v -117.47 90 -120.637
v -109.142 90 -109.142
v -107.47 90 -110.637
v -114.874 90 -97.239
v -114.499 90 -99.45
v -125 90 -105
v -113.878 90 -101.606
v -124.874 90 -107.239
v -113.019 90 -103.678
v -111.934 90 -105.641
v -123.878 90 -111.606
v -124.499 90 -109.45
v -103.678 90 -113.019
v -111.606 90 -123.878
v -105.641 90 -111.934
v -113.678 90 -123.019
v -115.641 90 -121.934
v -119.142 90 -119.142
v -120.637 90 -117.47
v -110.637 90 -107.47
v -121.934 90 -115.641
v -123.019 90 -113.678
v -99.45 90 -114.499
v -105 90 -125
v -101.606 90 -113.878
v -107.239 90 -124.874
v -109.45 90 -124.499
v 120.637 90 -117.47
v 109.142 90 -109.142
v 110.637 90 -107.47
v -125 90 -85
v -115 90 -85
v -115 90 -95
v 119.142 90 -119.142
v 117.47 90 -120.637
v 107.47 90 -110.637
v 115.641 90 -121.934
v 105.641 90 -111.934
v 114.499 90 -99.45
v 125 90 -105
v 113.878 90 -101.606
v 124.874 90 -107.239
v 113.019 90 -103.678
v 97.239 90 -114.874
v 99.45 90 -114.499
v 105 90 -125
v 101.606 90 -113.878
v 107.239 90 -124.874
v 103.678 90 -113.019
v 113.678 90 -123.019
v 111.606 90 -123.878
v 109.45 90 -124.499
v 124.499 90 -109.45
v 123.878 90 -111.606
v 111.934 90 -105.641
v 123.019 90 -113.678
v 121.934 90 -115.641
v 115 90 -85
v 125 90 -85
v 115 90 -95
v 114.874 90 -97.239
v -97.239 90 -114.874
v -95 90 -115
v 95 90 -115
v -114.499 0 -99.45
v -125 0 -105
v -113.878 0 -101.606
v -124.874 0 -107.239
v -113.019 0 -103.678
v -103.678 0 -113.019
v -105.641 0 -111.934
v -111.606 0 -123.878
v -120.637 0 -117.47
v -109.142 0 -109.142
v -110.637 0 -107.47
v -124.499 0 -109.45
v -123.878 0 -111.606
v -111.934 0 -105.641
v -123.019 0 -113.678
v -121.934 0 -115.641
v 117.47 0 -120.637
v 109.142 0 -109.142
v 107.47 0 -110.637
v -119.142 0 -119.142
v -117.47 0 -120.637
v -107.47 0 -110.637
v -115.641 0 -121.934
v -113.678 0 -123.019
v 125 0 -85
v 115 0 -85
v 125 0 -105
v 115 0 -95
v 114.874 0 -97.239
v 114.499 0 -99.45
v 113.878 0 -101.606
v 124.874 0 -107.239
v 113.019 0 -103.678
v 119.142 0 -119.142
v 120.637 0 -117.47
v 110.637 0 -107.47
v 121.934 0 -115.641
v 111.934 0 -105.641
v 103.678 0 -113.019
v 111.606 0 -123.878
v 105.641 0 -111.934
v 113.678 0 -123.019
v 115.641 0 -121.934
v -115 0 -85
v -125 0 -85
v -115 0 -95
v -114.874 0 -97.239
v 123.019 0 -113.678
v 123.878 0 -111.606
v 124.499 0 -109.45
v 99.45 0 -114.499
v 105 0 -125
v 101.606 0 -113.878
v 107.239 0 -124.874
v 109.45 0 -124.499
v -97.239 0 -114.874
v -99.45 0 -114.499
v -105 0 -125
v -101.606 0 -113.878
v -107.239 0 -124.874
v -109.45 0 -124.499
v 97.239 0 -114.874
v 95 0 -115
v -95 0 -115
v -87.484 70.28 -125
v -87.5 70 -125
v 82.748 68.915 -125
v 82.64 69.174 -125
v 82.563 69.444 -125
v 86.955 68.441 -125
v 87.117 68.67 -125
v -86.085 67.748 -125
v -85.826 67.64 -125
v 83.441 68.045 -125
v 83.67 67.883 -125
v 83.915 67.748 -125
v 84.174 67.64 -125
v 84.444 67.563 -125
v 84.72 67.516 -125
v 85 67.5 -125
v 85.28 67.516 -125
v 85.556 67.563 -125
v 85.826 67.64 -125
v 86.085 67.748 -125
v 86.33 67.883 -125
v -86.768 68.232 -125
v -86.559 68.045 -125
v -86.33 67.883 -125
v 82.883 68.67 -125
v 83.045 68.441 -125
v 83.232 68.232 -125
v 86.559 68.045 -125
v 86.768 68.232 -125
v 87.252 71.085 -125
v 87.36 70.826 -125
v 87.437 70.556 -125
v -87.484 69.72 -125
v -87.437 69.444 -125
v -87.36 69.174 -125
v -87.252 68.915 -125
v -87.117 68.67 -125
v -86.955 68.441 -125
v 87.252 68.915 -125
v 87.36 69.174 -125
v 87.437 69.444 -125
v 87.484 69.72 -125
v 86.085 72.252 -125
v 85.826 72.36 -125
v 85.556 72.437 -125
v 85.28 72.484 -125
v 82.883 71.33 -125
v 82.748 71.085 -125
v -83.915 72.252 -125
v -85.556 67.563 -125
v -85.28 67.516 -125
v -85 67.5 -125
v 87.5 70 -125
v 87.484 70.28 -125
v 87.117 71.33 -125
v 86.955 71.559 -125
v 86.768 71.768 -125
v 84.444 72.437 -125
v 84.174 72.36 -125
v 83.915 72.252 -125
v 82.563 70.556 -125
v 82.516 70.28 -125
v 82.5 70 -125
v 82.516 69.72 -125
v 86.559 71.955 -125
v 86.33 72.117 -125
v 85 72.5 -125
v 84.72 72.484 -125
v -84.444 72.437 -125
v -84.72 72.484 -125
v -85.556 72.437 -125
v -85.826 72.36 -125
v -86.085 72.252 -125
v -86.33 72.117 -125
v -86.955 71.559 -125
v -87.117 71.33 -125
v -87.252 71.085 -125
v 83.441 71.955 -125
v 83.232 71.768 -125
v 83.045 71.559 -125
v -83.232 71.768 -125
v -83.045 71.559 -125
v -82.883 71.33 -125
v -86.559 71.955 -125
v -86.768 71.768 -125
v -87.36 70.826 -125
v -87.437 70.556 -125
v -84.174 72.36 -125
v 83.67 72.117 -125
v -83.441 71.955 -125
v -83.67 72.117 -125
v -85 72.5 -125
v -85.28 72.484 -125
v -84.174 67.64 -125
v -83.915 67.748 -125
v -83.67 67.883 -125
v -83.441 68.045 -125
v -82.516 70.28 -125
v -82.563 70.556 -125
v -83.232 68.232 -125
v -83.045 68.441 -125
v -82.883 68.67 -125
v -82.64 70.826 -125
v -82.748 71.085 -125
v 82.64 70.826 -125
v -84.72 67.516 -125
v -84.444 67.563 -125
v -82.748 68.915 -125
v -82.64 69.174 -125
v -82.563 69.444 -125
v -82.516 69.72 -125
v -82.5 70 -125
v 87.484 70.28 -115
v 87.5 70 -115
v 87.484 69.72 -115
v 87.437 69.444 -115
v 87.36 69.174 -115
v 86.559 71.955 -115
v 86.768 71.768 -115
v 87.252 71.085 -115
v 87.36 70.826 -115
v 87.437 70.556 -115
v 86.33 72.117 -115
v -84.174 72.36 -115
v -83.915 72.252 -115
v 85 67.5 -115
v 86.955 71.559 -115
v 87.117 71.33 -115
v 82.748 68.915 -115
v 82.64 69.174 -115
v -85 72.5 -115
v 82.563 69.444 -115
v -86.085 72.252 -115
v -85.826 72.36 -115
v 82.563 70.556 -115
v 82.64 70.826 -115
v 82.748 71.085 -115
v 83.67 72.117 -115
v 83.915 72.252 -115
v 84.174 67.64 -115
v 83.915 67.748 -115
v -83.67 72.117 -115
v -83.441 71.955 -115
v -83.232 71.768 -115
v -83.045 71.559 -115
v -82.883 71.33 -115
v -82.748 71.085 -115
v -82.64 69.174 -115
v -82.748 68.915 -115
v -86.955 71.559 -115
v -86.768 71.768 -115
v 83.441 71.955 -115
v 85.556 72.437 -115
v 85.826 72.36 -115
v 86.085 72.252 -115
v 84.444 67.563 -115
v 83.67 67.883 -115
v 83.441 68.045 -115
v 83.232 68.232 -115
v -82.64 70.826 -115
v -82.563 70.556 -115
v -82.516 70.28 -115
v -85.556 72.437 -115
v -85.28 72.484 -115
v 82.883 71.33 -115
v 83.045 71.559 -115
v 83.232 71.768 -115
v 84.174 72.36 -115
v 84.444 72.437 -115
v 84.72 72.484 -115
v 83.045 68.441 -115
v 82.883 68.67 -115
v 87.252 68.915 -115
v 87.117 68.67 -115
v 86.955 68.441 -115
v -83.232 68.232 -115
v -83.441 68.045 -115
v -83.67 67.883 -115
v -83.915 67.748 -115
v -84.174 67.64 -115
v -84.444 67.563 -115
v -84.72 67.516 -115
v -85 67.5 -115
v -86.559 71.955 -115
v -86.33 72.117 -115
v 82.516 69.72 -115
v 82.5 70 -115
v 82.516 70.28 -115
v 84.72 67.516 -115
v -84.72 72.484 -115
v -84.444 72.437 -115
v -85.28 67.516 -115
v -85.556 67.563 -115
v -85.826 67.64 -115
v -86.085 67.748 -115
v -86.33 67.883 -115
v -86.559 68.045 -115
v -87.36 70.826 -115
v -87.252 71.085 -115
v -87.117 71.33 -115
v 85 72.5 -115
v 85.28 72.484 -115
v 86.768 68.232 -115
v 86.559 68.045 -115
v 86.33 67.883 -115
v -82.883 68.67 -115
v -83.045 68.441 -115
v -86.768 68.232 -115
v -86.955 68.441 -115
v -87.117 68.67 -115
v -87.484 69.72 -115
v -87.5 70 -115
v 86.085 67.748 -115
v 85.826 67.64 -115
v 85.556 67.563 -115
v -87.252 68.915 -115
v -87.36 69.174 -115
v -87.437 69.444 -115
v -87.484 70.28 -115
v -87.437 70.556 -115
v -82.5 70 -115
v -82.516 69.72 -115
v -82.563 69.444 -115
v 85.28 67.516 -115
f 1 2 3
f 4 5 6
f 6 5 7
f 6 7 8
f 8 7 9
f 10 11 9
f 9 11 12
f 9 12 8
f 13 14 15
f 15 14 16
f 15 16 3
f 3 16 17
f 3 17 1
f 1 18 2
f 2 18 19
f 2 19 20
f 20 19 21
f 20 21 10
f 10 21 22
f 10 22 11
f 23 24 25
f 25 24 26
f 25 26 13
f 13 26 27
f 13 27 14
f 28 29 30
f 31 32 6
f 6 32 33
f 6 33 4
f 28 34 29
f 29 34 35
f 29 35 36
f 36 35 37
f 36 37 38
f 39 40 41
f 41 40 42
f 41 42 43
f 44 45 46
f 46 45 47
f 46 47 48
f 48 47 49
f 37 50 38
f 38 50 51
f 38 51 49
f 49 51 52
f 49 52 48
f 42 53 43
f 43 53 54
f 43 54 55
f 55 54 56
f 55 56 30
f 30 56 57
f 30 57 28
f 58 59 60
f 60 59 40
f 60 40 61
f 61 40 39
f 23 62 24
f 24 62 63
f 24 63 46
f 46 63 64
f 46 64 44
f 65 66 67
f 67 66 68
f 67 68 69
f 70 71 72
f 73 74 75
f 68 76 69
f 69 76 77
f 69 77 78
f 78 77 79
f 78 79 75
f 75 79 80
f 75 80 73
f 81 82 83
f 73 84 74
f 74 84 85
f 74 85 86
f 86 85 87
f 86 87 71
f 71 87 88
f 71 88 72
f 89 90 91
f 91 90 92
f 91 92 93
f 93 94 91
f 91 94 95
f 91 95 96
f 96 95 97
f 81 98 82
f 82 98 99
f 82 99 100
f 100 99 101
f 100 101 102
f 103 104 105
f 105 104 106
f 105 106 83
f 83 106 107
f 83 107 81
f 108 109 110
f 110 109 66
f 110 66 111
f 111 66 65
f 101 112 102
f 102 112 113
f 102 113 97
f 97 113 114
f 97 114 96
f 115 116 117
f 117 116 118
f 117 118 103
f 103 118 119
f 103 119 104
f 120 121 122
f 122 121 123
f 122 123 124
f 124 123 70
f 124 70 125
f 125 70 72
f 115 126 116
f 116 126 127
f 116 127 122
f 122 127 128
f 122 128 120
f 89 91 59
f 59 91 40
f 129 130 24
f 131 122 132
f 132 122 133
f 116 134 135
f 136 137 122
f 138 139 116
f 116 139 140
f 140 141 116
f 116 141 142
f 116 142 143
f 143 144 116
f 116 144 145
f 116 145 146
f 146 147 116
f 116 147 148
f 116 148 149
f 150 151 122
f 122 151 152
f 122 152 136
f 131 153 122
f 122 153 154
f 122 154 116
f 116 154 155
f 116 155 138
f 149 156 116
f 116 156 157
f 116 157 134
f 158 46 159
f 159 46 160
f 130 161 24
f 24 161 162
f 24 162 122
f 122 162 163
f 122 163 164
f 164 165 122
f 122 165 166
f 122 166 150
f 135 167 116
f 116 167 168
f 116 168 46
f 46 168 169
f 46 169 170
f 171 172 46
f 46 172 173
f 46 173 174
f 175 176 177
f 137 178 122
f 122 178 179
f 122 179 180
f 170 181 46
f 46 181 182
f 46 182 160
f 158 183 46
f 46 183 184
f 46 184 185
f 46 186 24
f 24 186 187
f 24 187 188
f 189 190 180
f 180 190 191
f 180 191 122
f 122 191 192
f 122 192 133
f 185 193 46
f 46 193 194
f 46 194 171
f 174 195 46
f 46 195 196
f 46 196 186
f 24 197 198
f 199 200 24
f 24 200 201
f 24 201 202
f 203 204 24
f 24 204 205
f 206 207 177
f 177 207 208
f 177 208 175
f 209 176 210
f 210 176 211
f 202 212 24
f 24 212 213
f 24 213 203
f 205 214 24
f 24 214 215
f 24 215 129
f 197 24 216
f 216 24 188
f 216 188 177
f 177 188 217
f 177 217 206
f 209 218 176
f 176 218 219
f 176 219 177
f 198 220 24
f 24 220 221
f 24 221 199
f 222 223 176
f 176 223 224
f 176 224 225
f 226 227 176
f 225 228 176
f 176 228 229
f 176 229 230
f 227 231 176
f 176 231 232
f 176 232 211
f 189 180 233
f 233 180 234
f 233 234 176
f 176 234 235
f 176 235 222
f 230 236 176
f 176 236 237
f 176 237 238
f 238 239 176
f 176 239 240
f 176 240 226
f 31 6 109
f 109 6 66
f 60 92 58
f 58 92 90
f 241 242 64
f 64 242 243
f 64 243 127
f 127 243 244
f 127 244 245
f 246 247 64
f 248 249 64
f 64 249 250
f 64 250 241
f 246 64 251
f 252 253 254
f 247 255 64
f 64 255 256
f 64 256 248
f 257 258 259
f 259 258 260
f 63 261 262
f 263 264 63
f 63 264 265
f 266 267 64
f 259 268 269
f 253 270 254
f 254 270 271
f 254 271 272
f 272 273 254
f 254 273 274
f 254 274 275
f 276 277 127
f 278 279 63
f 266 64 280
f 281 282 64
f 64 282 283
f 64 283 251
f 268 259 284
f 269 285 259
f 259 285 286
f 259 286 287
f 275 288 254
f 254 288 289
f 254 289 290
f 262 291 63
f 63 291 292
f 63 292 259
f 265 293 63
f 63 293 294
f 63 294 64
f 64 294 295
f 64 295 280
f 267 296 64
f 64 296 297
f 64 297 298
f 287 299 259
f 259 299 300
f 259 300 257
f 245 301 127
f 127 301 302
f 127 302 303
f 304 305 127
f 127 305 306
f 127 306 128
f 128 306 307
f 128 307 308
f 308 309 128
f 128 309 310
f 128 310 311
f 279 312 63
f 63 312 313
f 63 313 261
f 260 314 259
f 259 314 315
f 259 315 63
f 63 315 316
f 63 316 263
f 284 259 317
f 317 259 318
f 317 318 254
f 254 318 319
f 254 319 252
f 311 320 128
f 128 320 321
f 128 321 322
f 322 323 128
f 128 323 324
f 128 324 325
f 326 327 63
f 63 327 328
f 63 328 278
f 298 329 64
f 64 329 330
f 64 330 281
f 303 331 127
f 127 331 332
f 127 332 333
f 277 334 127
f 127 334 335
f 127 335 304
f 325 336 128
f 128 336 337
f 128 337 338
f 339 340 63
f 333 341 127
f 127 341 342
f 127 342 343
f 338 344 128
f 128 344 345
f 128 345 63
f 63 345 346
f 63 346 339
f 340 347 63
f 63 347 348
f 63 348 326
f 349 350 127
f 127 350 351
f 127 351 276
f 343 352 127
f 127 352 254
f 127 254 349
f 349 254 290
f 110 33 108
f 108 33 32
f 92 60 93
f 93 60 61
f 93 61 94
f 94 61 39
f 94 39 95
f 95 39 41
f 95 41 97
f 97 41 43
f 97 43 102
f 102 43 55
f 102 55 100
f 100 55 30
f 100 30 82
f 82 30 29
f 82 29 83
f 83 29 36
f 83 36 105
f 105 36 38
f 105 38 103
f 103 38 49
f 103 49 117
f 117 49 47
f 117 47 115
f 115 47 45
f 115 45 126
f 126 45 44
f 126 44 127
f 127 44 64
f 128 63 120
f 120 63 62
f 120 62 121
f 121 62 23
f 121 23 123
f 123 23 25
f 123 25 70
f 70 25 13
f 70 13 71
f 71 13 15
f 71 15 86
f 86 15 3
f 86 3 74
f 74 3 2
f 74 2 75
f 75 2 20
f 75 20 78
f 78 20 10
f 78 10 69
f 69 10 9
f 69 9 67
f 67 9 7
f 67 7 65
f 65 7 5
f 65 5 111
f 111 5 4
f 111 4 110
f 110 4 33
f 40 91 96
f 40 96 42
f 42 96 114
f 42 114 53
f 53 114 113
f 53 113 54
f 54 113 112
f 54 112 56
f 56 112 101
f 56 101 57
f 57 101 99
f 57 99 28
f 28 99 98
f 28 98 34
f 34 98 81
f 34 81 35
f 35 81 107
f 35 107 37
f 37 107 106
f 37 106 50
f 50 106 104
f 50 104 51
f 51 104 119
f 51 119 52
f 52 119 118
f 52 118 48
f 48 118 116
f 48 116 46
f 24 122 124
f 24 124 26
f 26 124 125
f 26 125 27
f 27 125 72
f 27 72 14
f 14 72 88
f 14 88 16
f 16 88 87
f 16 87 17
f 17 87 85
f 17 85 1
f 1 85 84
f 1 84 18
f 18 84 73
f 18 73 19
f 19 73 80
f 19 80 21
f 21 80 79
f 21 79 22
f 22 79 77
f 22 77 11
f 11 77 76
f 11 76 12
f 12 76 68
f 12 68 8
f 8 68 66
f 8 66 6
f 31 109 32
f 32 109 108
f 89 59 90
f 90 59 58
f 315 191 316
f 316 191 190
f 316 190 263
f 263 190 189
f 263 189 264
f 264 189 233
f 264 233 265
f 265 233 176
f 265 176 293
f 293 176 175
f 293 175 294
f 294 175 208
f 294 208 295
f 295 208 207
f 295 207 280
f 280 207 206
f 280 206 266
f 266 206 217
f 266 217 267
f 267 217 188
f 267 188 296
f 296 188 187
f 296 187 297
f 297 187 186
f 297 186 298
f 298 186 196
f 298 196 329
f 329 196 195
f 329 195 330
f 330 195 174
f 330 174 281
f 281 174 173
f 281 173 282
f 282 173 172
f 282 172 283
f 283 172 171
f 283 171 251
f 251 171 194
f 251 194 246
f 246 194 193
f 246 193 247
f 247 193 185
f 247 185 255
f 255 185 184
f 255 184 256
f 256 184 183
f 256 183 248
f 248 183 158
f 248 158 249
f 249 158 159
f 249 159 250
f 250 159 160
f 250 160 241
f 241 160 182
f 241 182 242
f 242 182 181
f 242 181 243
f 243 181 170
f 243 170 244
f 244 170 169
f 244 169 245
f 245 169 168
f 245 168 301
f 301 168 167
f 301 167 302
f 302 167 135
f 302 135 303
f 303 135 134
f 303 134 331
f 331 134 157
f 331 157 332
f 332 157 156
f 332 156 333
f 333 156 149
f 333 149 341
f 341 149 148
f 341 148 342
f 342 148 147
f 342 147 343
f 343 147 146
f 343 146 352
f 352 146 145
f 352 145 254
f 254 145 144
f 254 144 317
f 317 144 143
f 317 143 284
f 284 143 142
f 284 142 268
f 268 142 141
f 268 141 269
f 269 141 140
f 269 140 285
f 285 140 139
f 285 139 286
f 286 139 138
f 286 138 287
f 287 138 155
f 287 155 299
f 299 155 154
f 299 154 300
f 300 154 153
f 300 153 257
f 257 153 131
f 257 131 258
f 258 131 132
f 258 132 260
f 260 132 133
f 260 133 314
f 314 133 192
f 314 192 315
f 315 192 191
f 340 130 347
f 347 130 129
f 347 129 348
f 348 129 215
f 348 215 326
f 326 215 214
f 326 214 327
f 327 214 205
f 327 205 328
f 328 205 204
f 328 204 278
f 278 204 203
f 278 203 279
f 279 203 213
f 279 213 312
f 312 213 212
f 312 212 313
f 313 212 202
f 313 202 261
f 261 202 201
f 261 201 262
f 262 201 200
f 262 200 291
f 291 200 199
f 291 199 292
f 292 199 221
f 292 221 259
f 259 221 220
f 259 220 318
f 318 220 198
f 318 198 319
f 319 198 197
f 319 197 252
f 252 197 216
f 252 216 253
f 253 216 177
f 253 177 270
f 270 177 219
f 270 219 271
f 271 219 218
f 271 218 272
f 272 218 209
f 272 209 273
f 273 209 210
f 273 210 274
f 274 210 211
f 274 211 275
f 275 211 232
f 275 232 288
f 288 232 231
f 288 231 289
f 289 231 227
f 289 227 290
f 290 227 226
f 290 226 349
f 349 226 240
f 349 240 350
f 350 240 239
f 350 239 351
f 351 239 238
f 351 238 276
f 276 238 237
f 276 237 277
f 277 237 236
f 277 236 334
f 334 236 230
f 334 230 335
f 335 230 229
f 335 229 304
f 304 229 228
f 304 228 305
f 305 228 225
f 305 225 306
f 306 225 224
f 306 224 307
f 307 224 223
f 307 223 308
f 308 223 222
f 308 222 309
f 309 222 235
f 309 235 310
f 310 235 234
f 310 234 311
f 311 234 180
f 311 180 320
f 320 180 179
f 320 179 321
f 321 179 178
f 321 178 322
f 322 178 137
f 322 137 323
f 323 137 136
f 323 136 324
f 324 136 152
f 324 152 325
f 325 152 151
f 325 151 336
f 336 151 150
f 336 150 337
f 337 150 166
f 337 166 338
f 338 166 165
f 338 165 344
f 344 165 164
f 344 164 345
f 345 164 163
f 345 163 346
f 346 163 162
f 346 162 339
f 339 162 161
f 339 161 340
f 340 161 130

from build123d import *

# Parameters (mm, degrees)
SKETCH1_W           = 250
SKETCH1_H           = 250
SKETCH1_W_2         = 230
SKETCH1_H_2         = 230
BOSS_EXTRUDE1_DEPTH = 90
SKETCH2_W           = 200
SKETCH2_H           = 70
CUT_EXTRUDE1_DEPTH  = 50
FILLET1_R           = 20
SKETCH3_W           = 210
SKETCH3_H           = 90
CUT_EXTRUDE2_DEPTH  = 251
SKETCH4_R           = 2.5
CUT_EXTRUDE3_DEPTH  = 10


with BuildPart() as part:
    # Sketch1 → Boss-Extrude1 (new body)
    with BuildSketch(Plane(origin=(0, 0, 0), x_dir=(1, 0, 0), z_dir=(0, 1, 0))):
        Rectangle(SKETCH1_W, SKETCH1_H)
        Rectangle(SKETCH1_W_2, SKETCH1_H_2, mode=Mode.SUBTRACT)
    extrude(amount=BOSS_EXTRUDE1_DEPTH)

    # Sketch2 → Cut-Extrude1 (cut)
    with BuildSketch(Plane.XY.offset(125)):
        with Locations((0, 35)):
            Rectangle(SKETCH2_W, SKETCH2_H)
    extrude(amount=-CUT_EXTRUDE1_DEPTH, mode=Mode.SUBTRACT)

    # Fillet1
    fillet1_edges = [part.edges().sort_by_distance(p)[0] for p in [
        (-115, 45, 115),
        (115, 45, 115),
        (115, 45, -115),
        (-115, 45, -115),
        (-125, 45, 125),
        (125, 45, 125),
        (125, 45, -125),
        (-125, 45, -125),
    ]]
    fillet(fillet1_edges, radius=FILLET1_R)

    # Sketch3 → Cut-Extrude2 (cut, through all)
    with BuildSketch(Plane.ZY.offset(125)):
        with Locations((20, 45)):
            Rectangle(SKETCH3_W, SKETCH3_H)
    extrude(amount=-CUT_EXTRUDE2_DEPTH, mode=Mode.SUBTRACT)

    # Sketch4 → Cut-Extrude3 (cut)
    with BuildSketch(Plane(origin=(0, 0, -125), x_dir=(-1, 0, 0), z_dir=(0, 0, -1))):
        with Locations((85, 70)):
            Circle(SKETCH4_R)
        with Locations((-85, 70)):
            Circle(SKETCH4_R)
    extrude(amount=-CUT_EXTRUDE3_DEPTH, mode=Mode.SUBTRACT)


solid = part.part
